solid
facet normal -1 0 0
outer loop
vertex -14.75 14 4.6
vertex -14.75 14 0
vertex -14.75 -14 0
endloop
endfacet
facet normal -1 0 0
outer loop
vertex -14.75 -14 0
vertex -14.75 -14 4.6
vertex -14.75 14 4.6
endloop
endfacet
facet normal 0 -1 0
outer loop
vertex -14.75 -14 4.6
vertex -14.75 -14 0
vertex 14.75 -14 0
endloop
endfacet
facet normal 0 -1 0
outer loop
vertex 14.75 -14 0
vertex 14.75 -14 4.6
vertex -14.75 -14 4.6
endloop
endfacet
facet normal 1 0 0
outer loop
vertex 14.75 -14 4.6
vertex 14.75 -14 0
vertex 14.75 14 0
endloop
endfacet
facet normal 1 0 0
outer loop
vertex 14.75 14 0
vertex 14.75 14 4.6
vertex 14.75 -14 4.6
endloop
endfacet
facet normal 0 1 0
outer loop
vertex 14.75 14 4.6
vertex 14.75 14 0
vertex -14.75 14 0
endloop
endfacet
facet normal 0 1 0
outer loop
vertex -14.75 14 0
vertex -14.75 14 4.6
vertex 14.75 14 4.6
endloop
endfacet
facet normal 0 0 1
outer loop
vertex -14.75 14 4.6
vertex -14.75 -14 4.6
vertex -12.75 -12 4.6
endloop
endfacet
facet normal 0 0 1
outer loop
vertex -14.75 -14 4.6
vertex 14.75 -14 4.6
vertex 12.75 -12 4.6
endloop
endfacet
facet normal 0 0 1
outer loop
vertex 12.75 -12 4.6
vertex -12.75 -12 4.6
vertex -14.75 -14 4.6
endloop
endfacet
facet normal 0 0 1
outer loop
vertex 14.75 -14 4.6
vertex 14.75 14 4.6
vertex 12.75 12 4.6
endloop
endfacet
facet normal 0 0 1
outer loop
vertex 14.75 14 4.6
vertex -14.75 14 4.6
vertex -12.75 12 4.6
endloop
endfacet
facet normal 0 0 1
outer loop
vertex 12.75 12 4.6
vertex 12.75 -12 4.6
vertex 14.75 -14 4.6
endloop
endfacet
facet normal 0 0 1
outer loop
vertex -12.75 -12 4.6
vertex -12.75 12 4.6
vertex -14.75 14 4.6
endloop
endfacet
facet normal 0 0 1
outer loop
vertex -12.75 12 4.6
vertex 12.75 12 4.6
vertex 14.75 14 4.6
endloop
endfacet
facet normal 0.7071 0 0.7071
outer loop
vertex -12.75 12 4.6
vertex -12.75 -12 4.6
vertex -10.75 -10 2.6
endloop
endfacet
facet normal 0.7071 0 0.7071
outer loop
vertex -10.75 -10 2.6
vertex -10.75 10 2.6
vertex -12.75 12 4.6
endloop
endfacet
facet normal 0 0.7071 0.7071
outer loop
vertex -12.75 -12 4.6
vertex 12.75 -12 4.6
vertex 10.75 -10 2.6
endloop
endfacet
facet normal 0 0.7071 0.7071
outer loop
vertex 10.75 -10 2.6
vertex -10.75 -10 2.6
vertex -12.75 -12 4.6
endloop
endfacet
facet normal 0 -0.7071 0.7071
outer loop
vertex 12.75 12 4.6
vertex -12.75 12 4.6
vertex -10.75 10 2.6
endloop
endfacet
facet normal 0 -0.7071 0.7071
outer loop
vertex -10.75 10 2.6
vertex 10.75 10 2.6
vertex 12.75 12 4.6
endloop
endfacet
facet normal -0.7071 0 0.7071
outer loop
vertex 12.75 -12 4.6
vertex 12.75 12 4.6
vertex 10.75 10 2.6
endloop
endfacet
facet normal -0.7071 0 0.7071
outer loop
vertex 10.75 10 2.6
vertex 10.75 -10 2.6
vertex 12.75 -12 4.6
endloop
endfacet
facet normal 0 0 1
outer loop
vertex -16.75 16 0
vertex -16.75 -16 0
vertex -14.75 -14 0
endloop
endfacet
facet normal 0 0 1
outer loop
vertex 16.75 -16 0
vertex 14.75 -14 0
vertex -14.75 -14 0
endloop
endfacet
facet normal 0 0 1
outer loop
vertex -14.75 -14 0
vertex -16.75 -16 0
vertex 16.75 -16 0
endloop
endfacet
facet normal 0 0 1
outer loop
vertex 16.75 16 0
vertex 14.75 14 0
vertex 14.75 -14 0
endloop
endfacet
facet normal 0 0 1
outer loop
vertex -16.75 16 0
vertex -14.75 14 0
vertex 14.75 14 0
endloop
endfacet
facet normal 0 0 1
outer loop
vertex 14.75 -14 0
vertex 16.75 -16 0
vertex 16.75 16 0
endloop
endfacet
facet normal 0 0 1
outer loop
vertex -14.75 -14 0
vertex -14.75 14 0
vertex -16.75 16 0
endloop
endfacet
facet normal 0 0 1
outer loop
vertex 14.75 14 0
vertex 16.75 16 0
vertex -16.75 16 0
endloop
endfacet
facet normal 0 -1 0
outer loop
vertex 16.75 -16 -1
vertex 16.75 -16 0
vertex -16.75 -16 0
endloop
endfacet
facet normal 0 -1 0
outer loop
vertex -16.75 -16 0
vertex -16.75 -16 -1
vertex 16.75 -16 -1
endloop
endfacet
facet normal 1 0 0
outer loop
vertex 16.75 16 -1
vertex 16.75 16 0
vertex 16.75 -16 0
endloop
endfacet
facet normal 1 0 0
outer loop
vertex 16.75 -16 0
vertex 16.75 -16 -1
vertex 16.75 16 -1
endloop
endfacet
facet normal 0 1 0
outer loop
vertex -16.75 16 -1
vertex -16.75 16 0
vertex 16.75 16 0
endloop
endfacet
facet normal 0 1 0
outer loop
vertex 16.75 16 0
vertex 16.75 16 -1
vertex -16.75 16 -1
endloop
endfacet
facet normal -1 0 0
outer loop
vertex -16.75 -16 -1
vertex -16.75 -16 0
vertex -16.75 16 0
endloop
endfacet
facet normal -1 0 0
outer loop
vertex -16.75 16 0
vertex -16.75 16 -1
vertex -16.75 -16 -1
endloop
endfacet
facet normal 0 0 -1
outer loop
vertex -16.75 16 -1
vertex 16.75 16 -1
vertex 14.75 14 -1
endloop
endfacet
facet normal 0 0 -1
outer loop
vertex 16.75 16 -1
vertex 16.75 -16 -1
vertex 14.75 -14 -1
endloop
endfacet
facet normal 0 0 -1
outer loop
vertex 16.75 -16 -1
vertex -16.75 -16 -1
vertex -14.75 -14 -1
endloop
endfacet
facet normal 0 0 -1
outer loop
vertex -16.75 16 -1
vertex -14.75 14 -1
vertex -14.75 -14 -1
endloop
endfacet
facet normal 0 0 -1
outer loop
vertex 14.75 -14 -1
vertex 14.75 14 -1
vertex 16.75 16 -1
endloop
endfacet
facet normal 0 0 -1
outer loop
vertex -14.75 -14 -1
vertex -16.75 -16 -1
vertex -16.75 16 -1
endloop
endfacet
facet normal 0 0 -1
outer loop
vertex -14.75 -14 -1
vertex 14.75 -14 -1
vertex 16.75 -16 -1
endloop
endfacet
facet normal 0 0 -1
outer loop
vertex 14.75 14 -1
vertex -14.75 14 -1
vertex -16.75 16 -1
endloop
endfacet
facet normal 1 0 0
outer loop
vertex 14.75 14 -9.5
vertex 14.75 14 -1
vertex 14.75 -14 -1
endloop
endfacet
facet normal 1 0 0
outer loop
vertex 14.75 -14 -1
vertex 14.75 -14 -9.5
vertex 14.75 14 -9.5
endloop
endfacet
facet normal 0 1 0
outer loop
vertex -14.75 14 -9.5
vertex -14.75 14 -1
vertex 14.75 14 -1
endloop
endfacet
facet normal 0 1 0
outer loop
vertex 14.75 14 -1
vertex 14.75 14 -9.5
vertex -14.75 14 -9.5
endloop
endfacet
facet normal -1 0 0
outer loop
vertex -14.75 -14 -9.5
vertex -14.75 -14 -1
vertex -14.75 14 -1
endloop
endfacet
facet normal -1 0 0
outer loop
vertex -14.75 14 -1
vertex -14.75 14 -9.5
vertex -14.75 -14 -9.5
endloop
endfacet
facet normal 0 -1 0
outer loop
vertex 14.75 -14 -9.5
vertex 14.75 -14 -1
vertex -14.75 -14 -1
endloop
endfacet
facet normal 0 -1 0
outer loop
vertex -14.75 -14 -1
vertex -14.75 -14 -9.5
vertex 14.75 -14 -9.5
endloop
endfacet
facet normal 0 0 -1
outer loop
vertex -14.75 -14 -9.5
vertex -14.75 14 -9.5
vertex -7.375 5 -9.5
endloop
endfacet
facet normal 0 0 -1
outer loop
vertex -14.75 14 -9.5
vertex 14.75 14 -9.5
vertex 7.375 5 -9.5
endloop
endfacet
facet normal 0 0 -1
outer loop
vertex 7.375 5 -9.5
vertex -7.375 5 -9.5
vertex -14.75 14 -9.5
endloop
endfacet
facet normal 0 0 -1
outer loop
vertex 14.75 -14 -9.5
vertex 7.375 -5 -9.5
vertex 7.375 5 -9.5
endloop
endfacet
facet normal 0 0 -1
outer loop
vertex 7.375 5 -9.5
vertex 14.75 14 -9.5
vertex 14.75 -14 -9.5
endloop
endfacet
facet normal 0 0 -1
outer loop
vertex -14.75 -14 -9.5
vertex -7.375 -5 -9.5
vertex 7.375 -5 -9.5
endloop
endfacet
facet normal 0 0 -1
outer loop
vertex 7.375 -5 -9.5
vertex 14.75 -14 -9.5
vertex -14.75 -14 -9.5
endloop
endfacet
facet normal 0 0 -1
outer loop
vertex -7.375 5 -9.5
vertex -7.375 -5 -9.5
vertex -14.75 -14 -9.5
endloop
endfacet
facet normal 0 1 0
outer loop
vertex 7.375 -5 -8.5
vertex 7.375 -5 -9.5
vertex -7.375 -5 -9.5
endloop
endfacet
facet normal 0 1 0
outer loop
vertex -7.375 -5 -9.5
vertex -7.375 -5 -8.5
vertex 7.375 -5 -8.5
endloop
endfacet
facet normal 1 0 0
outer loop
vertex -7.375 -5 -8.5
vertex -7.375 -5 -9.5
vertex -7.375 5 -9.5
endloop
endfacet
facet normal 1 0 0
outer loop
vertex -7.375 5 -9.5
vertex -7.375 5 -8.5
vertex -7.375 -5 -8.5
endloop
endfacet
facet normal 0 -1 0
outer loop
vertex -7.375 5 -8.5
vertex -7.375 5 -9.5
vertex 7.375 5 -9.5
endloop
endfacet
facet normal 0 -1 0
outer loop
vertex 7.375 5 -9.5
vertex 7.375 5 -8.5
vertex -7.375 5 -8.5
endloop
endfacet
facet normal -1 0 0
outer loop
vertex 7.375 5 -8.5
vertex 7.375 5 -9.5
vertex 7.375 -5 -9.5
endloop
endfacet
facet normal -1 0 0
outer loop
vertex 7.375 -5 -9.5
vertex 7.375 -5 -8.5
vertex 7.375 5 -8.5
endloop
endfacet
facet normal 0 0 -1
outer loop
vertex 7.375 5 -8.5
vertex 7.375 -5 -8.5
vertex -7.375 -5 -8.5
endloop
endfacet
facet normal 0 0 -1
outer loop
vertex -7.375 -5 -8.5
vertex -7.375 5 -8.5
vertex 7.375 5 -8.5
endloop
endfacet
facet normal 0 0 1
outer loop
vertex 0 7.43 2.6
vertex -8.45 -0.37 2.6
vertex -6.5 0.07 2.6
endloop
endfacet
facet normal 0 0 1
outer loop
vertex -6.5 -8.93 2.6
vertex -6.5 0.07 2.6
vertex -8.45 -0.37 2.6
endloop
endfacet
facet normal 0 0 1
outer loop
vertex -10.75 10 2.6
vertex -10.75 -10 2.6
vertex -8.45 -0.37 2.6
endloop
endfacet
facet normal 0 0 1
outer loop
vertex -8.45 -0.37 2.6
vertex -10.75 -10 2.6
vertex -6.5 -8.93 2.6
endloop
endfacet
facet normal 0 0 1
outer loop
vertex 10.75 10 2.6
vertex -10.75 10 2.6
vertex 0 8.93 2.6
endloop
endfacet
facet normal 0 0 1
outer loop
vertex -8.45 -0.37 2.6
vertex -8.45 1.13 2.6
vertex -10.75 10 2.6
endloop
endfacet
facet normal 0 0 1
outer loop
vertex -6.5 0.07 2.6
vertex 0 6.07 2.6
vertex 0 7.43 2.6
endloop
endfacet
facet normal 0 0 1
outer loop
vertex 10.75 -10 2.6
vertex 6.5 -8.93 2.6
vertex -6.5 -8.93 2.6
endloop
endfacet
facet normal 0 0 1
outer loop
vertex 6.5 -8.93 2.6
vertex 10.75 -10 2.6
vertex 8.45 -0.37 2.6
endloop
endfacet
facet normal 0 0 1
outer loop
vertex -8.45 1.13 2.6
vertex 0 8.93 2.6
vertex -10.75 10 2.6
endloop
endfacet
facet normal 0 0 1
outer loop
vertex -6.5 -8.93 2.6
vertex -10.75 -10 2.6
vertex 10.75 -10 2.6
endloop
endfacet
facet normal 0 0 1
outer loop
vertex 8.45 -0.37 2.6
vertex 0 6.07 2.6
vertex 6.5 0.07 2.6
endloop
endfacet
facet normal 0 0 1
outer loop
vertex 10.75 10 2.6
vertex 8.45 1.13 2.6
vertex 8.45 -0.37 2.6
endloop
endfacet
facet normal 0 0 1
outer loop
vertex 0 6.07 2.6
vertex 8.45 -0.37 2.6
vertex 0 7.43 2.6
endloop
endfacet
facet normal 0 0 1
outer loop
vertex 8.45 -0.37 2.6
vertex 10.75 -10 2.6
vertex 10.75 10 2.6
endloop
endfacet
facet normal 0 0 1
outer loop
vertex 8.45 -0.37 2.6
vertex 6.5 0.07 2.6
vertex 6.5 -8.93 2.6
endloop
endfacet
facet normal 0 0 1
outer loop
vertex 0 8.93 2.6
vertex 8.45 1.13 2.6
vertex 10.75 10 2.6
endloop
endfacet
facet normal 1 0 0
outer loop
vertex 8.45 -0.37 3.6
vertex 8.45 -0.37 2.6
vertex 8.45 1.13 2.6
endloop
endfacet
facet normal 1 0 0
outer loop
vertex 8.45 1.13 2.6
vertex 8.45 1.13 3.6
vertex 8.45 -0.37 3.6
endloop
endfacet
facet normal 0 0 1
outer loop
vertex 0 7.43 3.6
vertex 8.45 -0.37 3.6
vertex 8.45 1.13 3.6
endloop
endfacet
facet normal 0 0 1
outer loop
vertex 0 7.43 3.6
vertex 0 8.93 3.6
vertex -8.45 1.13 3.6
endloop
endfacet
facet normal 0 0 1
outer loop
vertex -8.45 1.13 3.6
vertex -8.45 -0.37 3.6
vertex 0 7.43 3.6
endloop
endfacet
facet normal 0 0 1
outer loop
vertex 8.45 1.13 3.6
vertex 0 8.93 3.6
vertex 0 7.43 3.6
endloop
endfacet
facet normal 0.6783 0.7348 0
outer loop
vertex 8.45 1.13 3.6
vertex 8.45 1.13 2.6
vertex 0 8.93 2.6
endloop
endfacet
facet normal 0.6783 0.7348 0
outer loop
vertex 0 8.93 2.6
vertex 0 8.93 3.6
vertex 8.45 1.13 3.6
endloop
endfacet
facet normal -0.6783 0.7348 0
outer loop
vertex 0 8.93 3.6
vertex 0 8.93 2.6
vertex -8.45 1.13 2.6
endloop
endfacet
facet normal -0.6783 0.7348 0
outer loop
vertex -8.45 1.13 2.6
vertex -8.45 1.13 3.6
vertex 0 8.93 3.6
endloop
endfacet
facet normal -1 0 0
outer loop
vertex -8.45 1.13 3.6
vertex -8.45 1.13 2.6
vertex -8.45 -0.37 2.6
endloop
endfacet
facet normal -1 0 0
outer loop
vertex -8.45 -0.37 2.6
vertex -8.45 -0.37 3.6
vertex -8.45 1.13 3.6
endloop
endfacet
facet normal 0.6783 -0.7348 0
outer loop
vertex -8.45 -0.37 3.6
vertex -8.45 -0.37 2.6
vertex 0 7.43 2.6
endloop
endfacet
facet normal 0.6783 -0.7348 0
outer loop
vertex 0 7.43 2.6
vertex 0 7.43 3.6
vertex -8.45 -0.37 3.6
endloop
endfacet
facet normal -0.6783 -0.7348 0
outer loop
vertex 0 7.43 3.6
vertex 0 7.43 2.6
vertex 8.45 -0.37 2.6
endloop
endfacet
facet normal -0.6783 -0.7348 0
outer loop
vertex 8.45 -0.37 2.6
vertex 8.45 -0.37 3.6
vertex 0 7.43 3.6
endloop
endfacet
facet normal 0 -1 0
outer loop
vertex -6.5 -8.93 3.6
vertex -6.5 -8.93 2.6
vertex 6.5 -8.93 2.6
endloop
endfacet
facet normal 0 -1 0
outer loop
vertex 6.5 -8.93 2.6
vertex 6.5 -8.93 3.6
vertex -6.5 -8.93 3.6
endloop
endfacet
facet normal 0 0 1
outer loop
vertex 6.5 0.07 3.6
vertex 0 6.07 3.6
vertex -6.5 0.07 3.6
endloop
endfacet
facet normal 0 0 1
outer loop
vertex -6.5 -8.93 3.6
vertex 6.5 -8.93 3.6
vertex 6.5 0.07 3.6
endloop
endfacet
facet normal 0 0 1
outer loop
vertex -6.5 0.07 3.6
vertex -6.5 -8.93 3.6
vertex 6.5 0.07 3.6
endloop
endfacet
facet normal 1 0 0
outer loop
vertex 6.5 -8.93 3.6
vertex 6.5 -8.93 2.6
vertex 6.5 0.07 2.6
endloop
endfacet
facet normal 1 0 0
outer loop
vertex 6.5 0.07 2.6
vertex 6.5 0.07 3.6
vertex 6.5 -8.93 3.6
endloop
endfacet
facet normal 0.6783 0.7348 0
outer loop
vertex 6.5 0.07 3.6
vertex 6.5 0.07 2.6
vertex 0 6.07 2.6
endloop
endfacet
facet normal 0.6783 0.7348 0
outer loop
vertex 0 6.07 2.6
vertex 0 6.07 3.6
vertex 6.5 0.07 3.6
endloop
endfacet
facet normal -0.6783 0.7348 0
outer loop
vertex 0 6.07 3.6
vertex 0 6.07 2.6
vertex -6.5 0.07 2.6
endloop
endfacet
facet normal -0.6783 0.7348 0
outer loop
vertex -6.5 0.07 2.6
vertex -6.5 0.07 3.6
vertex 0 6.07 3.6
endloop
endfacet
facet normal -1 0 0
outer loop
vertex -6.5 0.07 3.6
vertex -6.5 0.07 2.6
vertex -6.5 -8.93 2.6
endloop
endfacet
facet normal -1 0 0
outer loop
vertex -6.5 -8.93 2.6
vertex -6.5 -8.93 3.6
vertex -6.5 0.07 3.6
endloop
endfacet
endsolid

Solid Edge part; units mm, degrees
sketch "Sketch1" plane through (0, 0, 0) normal (0, 0, 1) x (1, 0, 0)
  line L0 (-14.75, -14) -> (14.75, -14)
  line L1 (14.75, -14) -> (14.75, 14)
  line L2 (14.75, 14) -> (-14.75, 14)
  line L3 (-14.75, 14) -> (-14.75, -14)
extrude "Protrusion1" add sketch "Sketch1" along normal blind 4.6
sketch "Sketch2" plane through (0, 0, 0) normal (0, 0, -1) x (1, 0, 0)
  line L0 (16.75, 16) -> (16.75, -16)
  line L1 (16.75, -16) -> (-16.75, -16)
  line L2 (-16.75, -16) -> (-16.75, 16)
  line L3 (-16.75, 16) -> (16.75, 16)
extrude "ExtrudedProtrusion_2" add sketch "Sketch2" along normal blind 1
sketch "Sketch3" plane through (0, 0, 0) normal (0, 0, 1) x (1, 0, 0)
  line L0 (14.75, 14) -> (-14.75, 14)
  line L1 (-14.75, 14) -> (-14.75, -14)
  line L2 (-14.75, -14) -> (14.75, -14)
  line L3 (14.75, -14) -> (14.75, 14)
extrude "ExtrudedProtrusion_3" add sketch "Sketch3" against normal blind 9.5
sketch "Sketch4" plane through (0, 0, 4.6) normal (0, 0, 1) x (1, 0, 0)
  line L0 (-13.25, 12.5) -> (-13.25, -12.5)
  line L1 (-13.25, -12.5) -> (13.25, -12.5)
  line L2 (13.25, -12.5) -> (13.25, 12.5)
  line L3 (13.25, 12.5) -> (-13.25, 12.5)
extrude "ExtrudedCutout_1" cut sketch "Sketch4" against normal blind 2
chamfer "Chamfer_1" distance 2.5 angle 45 4 edges at (0, 12.5, 2.6) (13.25, 0, 2.6) (0, -12.5, 2.6) (-13.25, 0, 2.6)
sketch "Sketch5" plane through (0, 0, 2.6) normal (0, 0, 1) x (1, 0, 0)
  line L0 (-6.5, -8.9305) -> (6.5, -8.9305)
  line L1 (6.5, -8.9305) -> (6.5, 0.0695)
  line L2 (6.5, 0.0695) -> (0, 6.0695)
  line L3 (0, 6.0695) -> (-6.5, 0.0695)
  line L4 (-6.5, 0.0695) -> (-6.5, -8.9305)
  line L5 (8.4502, 1.1302) -> (0, 8.9305)
  line L6 (0, 8.9305) -> (-8.4502, 1.1302)
  line L7 (-8.4502, 1.1302) -> (-8.4502, -0.3698)
  line L8 (-8.4502, -0.3698) -> (0, 7.4305)
  line L9 (0, 7.4305) -> (8.4502, -0.3698)
  line L10 (8.4502, -0.3698) -> (8.4502, 1.1302)
  dimension "D1" = 13
  dimension "D2" = 9
  dimension "D3" = 15
  dimension "D4" = 1.5
  dimension "D5" = 1
  dimension "D6" = 11.5
extrude "ExtrudedProtrusion_4" add sketch "Sketch5" along normal blind 1
sketch "Sketch6" plane through (0, 0, -9.5) normal (0, 0, -1) x (-1, 0, 0)
  line L0 (7.375, -5) -> (7.375, 5)
  line L1 (7.375, 5) -> (-7.375, 5)
  line L2 (-7.375, 5) -> (-7.375, -5)
  line L3 (-7.375, -5) -> (7.375, -5)
extrude "ExtrudedCutout_2" cut sketch "Sketch6" against normal blind 1
properties material "Polycarbonate"
